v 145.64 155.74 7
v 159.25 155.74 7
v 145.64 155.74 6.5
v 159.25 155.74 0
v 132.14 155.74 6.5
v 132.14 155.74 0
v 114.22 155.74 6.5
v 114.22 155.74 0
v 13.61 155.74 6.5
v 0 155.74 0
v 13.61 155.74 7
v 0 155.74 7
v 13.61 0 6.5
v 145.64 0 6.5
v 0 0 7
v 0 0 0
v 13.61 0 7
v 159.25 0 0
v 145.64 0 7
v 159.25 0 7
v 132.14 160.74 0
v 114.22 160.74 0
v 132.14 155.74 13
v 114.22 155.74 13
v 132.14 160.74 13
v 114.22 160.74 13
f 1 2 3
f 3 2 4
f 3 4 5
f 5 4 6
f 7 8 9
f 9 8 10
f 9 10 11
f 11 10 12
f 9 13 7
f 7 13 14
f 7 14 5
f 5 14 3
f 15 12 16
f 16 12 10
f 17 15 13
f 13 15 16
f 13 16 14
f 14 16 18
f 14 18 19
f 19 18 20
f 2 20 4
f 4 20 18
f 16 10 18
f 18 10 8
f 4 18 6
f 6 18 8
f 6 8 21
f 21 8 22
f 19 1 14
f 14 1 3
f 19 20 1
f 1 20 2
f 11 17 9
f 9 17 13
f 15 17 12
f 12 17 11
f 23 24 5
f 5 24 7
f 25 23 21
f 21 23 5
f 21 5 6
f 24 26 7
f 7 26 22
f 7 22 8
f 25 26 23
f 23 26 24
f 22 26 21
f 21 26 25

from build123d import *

# Parameters (mm, degrees)
SKETCH1_W           = 159.25
SKETCH1_H           = 155.74
BOSS_EXTRUDE1_DEPTH = 6.5
SKETCH2_W           = 13.61
SKETCH2_H           = 155.74
BOSS_EXTRUDE2_DEPTH = 0.5
SKETCH3_W           = 17.92
SKETCH3_H           = 13
BOSS_EXTRUDE3_DEPTH = 5


with BuildPart() as part:
    # Sketch1 → Boss-Extrude1 (new body)
    with BuildSketch(Plane.XY):
        with Locations((79.625, 77.87)):
            Rectangle(SKETCH1_W, SKETCH1_H)
    extrude(amount=BOSS_EXTRUDE1_DEPTH)

    # Sketch2 → Boss-Extrude2 (add)
    with BuildSketch(Plane.XY.offset(6.5)):
        with Locations((6.805, 77.87)):
            Rectangle(SKETCH2_W, SKETCH2_H)
        with Locations((152.445, 77.87)):
            Rectangle(SKETCH2_W, SKETCH2_H)
    extrude(amount=BOSS_EXTRUDE2_DEPTH)

    # Sketch3 → Boss-Extrude3 (add)
    with BuildSketch(Plane(origin=(0, 155.74, 0), x_dir=(1, 0, 0), z_dir=(0, 1, 0))):
        with Locations((123.18, -6.5)):
            Rectangle(SKETCH3_W, SKETCH3_H)
    extrude(amount=BOSS_EXTRUDE3_DEPTH)


solid = part.part
